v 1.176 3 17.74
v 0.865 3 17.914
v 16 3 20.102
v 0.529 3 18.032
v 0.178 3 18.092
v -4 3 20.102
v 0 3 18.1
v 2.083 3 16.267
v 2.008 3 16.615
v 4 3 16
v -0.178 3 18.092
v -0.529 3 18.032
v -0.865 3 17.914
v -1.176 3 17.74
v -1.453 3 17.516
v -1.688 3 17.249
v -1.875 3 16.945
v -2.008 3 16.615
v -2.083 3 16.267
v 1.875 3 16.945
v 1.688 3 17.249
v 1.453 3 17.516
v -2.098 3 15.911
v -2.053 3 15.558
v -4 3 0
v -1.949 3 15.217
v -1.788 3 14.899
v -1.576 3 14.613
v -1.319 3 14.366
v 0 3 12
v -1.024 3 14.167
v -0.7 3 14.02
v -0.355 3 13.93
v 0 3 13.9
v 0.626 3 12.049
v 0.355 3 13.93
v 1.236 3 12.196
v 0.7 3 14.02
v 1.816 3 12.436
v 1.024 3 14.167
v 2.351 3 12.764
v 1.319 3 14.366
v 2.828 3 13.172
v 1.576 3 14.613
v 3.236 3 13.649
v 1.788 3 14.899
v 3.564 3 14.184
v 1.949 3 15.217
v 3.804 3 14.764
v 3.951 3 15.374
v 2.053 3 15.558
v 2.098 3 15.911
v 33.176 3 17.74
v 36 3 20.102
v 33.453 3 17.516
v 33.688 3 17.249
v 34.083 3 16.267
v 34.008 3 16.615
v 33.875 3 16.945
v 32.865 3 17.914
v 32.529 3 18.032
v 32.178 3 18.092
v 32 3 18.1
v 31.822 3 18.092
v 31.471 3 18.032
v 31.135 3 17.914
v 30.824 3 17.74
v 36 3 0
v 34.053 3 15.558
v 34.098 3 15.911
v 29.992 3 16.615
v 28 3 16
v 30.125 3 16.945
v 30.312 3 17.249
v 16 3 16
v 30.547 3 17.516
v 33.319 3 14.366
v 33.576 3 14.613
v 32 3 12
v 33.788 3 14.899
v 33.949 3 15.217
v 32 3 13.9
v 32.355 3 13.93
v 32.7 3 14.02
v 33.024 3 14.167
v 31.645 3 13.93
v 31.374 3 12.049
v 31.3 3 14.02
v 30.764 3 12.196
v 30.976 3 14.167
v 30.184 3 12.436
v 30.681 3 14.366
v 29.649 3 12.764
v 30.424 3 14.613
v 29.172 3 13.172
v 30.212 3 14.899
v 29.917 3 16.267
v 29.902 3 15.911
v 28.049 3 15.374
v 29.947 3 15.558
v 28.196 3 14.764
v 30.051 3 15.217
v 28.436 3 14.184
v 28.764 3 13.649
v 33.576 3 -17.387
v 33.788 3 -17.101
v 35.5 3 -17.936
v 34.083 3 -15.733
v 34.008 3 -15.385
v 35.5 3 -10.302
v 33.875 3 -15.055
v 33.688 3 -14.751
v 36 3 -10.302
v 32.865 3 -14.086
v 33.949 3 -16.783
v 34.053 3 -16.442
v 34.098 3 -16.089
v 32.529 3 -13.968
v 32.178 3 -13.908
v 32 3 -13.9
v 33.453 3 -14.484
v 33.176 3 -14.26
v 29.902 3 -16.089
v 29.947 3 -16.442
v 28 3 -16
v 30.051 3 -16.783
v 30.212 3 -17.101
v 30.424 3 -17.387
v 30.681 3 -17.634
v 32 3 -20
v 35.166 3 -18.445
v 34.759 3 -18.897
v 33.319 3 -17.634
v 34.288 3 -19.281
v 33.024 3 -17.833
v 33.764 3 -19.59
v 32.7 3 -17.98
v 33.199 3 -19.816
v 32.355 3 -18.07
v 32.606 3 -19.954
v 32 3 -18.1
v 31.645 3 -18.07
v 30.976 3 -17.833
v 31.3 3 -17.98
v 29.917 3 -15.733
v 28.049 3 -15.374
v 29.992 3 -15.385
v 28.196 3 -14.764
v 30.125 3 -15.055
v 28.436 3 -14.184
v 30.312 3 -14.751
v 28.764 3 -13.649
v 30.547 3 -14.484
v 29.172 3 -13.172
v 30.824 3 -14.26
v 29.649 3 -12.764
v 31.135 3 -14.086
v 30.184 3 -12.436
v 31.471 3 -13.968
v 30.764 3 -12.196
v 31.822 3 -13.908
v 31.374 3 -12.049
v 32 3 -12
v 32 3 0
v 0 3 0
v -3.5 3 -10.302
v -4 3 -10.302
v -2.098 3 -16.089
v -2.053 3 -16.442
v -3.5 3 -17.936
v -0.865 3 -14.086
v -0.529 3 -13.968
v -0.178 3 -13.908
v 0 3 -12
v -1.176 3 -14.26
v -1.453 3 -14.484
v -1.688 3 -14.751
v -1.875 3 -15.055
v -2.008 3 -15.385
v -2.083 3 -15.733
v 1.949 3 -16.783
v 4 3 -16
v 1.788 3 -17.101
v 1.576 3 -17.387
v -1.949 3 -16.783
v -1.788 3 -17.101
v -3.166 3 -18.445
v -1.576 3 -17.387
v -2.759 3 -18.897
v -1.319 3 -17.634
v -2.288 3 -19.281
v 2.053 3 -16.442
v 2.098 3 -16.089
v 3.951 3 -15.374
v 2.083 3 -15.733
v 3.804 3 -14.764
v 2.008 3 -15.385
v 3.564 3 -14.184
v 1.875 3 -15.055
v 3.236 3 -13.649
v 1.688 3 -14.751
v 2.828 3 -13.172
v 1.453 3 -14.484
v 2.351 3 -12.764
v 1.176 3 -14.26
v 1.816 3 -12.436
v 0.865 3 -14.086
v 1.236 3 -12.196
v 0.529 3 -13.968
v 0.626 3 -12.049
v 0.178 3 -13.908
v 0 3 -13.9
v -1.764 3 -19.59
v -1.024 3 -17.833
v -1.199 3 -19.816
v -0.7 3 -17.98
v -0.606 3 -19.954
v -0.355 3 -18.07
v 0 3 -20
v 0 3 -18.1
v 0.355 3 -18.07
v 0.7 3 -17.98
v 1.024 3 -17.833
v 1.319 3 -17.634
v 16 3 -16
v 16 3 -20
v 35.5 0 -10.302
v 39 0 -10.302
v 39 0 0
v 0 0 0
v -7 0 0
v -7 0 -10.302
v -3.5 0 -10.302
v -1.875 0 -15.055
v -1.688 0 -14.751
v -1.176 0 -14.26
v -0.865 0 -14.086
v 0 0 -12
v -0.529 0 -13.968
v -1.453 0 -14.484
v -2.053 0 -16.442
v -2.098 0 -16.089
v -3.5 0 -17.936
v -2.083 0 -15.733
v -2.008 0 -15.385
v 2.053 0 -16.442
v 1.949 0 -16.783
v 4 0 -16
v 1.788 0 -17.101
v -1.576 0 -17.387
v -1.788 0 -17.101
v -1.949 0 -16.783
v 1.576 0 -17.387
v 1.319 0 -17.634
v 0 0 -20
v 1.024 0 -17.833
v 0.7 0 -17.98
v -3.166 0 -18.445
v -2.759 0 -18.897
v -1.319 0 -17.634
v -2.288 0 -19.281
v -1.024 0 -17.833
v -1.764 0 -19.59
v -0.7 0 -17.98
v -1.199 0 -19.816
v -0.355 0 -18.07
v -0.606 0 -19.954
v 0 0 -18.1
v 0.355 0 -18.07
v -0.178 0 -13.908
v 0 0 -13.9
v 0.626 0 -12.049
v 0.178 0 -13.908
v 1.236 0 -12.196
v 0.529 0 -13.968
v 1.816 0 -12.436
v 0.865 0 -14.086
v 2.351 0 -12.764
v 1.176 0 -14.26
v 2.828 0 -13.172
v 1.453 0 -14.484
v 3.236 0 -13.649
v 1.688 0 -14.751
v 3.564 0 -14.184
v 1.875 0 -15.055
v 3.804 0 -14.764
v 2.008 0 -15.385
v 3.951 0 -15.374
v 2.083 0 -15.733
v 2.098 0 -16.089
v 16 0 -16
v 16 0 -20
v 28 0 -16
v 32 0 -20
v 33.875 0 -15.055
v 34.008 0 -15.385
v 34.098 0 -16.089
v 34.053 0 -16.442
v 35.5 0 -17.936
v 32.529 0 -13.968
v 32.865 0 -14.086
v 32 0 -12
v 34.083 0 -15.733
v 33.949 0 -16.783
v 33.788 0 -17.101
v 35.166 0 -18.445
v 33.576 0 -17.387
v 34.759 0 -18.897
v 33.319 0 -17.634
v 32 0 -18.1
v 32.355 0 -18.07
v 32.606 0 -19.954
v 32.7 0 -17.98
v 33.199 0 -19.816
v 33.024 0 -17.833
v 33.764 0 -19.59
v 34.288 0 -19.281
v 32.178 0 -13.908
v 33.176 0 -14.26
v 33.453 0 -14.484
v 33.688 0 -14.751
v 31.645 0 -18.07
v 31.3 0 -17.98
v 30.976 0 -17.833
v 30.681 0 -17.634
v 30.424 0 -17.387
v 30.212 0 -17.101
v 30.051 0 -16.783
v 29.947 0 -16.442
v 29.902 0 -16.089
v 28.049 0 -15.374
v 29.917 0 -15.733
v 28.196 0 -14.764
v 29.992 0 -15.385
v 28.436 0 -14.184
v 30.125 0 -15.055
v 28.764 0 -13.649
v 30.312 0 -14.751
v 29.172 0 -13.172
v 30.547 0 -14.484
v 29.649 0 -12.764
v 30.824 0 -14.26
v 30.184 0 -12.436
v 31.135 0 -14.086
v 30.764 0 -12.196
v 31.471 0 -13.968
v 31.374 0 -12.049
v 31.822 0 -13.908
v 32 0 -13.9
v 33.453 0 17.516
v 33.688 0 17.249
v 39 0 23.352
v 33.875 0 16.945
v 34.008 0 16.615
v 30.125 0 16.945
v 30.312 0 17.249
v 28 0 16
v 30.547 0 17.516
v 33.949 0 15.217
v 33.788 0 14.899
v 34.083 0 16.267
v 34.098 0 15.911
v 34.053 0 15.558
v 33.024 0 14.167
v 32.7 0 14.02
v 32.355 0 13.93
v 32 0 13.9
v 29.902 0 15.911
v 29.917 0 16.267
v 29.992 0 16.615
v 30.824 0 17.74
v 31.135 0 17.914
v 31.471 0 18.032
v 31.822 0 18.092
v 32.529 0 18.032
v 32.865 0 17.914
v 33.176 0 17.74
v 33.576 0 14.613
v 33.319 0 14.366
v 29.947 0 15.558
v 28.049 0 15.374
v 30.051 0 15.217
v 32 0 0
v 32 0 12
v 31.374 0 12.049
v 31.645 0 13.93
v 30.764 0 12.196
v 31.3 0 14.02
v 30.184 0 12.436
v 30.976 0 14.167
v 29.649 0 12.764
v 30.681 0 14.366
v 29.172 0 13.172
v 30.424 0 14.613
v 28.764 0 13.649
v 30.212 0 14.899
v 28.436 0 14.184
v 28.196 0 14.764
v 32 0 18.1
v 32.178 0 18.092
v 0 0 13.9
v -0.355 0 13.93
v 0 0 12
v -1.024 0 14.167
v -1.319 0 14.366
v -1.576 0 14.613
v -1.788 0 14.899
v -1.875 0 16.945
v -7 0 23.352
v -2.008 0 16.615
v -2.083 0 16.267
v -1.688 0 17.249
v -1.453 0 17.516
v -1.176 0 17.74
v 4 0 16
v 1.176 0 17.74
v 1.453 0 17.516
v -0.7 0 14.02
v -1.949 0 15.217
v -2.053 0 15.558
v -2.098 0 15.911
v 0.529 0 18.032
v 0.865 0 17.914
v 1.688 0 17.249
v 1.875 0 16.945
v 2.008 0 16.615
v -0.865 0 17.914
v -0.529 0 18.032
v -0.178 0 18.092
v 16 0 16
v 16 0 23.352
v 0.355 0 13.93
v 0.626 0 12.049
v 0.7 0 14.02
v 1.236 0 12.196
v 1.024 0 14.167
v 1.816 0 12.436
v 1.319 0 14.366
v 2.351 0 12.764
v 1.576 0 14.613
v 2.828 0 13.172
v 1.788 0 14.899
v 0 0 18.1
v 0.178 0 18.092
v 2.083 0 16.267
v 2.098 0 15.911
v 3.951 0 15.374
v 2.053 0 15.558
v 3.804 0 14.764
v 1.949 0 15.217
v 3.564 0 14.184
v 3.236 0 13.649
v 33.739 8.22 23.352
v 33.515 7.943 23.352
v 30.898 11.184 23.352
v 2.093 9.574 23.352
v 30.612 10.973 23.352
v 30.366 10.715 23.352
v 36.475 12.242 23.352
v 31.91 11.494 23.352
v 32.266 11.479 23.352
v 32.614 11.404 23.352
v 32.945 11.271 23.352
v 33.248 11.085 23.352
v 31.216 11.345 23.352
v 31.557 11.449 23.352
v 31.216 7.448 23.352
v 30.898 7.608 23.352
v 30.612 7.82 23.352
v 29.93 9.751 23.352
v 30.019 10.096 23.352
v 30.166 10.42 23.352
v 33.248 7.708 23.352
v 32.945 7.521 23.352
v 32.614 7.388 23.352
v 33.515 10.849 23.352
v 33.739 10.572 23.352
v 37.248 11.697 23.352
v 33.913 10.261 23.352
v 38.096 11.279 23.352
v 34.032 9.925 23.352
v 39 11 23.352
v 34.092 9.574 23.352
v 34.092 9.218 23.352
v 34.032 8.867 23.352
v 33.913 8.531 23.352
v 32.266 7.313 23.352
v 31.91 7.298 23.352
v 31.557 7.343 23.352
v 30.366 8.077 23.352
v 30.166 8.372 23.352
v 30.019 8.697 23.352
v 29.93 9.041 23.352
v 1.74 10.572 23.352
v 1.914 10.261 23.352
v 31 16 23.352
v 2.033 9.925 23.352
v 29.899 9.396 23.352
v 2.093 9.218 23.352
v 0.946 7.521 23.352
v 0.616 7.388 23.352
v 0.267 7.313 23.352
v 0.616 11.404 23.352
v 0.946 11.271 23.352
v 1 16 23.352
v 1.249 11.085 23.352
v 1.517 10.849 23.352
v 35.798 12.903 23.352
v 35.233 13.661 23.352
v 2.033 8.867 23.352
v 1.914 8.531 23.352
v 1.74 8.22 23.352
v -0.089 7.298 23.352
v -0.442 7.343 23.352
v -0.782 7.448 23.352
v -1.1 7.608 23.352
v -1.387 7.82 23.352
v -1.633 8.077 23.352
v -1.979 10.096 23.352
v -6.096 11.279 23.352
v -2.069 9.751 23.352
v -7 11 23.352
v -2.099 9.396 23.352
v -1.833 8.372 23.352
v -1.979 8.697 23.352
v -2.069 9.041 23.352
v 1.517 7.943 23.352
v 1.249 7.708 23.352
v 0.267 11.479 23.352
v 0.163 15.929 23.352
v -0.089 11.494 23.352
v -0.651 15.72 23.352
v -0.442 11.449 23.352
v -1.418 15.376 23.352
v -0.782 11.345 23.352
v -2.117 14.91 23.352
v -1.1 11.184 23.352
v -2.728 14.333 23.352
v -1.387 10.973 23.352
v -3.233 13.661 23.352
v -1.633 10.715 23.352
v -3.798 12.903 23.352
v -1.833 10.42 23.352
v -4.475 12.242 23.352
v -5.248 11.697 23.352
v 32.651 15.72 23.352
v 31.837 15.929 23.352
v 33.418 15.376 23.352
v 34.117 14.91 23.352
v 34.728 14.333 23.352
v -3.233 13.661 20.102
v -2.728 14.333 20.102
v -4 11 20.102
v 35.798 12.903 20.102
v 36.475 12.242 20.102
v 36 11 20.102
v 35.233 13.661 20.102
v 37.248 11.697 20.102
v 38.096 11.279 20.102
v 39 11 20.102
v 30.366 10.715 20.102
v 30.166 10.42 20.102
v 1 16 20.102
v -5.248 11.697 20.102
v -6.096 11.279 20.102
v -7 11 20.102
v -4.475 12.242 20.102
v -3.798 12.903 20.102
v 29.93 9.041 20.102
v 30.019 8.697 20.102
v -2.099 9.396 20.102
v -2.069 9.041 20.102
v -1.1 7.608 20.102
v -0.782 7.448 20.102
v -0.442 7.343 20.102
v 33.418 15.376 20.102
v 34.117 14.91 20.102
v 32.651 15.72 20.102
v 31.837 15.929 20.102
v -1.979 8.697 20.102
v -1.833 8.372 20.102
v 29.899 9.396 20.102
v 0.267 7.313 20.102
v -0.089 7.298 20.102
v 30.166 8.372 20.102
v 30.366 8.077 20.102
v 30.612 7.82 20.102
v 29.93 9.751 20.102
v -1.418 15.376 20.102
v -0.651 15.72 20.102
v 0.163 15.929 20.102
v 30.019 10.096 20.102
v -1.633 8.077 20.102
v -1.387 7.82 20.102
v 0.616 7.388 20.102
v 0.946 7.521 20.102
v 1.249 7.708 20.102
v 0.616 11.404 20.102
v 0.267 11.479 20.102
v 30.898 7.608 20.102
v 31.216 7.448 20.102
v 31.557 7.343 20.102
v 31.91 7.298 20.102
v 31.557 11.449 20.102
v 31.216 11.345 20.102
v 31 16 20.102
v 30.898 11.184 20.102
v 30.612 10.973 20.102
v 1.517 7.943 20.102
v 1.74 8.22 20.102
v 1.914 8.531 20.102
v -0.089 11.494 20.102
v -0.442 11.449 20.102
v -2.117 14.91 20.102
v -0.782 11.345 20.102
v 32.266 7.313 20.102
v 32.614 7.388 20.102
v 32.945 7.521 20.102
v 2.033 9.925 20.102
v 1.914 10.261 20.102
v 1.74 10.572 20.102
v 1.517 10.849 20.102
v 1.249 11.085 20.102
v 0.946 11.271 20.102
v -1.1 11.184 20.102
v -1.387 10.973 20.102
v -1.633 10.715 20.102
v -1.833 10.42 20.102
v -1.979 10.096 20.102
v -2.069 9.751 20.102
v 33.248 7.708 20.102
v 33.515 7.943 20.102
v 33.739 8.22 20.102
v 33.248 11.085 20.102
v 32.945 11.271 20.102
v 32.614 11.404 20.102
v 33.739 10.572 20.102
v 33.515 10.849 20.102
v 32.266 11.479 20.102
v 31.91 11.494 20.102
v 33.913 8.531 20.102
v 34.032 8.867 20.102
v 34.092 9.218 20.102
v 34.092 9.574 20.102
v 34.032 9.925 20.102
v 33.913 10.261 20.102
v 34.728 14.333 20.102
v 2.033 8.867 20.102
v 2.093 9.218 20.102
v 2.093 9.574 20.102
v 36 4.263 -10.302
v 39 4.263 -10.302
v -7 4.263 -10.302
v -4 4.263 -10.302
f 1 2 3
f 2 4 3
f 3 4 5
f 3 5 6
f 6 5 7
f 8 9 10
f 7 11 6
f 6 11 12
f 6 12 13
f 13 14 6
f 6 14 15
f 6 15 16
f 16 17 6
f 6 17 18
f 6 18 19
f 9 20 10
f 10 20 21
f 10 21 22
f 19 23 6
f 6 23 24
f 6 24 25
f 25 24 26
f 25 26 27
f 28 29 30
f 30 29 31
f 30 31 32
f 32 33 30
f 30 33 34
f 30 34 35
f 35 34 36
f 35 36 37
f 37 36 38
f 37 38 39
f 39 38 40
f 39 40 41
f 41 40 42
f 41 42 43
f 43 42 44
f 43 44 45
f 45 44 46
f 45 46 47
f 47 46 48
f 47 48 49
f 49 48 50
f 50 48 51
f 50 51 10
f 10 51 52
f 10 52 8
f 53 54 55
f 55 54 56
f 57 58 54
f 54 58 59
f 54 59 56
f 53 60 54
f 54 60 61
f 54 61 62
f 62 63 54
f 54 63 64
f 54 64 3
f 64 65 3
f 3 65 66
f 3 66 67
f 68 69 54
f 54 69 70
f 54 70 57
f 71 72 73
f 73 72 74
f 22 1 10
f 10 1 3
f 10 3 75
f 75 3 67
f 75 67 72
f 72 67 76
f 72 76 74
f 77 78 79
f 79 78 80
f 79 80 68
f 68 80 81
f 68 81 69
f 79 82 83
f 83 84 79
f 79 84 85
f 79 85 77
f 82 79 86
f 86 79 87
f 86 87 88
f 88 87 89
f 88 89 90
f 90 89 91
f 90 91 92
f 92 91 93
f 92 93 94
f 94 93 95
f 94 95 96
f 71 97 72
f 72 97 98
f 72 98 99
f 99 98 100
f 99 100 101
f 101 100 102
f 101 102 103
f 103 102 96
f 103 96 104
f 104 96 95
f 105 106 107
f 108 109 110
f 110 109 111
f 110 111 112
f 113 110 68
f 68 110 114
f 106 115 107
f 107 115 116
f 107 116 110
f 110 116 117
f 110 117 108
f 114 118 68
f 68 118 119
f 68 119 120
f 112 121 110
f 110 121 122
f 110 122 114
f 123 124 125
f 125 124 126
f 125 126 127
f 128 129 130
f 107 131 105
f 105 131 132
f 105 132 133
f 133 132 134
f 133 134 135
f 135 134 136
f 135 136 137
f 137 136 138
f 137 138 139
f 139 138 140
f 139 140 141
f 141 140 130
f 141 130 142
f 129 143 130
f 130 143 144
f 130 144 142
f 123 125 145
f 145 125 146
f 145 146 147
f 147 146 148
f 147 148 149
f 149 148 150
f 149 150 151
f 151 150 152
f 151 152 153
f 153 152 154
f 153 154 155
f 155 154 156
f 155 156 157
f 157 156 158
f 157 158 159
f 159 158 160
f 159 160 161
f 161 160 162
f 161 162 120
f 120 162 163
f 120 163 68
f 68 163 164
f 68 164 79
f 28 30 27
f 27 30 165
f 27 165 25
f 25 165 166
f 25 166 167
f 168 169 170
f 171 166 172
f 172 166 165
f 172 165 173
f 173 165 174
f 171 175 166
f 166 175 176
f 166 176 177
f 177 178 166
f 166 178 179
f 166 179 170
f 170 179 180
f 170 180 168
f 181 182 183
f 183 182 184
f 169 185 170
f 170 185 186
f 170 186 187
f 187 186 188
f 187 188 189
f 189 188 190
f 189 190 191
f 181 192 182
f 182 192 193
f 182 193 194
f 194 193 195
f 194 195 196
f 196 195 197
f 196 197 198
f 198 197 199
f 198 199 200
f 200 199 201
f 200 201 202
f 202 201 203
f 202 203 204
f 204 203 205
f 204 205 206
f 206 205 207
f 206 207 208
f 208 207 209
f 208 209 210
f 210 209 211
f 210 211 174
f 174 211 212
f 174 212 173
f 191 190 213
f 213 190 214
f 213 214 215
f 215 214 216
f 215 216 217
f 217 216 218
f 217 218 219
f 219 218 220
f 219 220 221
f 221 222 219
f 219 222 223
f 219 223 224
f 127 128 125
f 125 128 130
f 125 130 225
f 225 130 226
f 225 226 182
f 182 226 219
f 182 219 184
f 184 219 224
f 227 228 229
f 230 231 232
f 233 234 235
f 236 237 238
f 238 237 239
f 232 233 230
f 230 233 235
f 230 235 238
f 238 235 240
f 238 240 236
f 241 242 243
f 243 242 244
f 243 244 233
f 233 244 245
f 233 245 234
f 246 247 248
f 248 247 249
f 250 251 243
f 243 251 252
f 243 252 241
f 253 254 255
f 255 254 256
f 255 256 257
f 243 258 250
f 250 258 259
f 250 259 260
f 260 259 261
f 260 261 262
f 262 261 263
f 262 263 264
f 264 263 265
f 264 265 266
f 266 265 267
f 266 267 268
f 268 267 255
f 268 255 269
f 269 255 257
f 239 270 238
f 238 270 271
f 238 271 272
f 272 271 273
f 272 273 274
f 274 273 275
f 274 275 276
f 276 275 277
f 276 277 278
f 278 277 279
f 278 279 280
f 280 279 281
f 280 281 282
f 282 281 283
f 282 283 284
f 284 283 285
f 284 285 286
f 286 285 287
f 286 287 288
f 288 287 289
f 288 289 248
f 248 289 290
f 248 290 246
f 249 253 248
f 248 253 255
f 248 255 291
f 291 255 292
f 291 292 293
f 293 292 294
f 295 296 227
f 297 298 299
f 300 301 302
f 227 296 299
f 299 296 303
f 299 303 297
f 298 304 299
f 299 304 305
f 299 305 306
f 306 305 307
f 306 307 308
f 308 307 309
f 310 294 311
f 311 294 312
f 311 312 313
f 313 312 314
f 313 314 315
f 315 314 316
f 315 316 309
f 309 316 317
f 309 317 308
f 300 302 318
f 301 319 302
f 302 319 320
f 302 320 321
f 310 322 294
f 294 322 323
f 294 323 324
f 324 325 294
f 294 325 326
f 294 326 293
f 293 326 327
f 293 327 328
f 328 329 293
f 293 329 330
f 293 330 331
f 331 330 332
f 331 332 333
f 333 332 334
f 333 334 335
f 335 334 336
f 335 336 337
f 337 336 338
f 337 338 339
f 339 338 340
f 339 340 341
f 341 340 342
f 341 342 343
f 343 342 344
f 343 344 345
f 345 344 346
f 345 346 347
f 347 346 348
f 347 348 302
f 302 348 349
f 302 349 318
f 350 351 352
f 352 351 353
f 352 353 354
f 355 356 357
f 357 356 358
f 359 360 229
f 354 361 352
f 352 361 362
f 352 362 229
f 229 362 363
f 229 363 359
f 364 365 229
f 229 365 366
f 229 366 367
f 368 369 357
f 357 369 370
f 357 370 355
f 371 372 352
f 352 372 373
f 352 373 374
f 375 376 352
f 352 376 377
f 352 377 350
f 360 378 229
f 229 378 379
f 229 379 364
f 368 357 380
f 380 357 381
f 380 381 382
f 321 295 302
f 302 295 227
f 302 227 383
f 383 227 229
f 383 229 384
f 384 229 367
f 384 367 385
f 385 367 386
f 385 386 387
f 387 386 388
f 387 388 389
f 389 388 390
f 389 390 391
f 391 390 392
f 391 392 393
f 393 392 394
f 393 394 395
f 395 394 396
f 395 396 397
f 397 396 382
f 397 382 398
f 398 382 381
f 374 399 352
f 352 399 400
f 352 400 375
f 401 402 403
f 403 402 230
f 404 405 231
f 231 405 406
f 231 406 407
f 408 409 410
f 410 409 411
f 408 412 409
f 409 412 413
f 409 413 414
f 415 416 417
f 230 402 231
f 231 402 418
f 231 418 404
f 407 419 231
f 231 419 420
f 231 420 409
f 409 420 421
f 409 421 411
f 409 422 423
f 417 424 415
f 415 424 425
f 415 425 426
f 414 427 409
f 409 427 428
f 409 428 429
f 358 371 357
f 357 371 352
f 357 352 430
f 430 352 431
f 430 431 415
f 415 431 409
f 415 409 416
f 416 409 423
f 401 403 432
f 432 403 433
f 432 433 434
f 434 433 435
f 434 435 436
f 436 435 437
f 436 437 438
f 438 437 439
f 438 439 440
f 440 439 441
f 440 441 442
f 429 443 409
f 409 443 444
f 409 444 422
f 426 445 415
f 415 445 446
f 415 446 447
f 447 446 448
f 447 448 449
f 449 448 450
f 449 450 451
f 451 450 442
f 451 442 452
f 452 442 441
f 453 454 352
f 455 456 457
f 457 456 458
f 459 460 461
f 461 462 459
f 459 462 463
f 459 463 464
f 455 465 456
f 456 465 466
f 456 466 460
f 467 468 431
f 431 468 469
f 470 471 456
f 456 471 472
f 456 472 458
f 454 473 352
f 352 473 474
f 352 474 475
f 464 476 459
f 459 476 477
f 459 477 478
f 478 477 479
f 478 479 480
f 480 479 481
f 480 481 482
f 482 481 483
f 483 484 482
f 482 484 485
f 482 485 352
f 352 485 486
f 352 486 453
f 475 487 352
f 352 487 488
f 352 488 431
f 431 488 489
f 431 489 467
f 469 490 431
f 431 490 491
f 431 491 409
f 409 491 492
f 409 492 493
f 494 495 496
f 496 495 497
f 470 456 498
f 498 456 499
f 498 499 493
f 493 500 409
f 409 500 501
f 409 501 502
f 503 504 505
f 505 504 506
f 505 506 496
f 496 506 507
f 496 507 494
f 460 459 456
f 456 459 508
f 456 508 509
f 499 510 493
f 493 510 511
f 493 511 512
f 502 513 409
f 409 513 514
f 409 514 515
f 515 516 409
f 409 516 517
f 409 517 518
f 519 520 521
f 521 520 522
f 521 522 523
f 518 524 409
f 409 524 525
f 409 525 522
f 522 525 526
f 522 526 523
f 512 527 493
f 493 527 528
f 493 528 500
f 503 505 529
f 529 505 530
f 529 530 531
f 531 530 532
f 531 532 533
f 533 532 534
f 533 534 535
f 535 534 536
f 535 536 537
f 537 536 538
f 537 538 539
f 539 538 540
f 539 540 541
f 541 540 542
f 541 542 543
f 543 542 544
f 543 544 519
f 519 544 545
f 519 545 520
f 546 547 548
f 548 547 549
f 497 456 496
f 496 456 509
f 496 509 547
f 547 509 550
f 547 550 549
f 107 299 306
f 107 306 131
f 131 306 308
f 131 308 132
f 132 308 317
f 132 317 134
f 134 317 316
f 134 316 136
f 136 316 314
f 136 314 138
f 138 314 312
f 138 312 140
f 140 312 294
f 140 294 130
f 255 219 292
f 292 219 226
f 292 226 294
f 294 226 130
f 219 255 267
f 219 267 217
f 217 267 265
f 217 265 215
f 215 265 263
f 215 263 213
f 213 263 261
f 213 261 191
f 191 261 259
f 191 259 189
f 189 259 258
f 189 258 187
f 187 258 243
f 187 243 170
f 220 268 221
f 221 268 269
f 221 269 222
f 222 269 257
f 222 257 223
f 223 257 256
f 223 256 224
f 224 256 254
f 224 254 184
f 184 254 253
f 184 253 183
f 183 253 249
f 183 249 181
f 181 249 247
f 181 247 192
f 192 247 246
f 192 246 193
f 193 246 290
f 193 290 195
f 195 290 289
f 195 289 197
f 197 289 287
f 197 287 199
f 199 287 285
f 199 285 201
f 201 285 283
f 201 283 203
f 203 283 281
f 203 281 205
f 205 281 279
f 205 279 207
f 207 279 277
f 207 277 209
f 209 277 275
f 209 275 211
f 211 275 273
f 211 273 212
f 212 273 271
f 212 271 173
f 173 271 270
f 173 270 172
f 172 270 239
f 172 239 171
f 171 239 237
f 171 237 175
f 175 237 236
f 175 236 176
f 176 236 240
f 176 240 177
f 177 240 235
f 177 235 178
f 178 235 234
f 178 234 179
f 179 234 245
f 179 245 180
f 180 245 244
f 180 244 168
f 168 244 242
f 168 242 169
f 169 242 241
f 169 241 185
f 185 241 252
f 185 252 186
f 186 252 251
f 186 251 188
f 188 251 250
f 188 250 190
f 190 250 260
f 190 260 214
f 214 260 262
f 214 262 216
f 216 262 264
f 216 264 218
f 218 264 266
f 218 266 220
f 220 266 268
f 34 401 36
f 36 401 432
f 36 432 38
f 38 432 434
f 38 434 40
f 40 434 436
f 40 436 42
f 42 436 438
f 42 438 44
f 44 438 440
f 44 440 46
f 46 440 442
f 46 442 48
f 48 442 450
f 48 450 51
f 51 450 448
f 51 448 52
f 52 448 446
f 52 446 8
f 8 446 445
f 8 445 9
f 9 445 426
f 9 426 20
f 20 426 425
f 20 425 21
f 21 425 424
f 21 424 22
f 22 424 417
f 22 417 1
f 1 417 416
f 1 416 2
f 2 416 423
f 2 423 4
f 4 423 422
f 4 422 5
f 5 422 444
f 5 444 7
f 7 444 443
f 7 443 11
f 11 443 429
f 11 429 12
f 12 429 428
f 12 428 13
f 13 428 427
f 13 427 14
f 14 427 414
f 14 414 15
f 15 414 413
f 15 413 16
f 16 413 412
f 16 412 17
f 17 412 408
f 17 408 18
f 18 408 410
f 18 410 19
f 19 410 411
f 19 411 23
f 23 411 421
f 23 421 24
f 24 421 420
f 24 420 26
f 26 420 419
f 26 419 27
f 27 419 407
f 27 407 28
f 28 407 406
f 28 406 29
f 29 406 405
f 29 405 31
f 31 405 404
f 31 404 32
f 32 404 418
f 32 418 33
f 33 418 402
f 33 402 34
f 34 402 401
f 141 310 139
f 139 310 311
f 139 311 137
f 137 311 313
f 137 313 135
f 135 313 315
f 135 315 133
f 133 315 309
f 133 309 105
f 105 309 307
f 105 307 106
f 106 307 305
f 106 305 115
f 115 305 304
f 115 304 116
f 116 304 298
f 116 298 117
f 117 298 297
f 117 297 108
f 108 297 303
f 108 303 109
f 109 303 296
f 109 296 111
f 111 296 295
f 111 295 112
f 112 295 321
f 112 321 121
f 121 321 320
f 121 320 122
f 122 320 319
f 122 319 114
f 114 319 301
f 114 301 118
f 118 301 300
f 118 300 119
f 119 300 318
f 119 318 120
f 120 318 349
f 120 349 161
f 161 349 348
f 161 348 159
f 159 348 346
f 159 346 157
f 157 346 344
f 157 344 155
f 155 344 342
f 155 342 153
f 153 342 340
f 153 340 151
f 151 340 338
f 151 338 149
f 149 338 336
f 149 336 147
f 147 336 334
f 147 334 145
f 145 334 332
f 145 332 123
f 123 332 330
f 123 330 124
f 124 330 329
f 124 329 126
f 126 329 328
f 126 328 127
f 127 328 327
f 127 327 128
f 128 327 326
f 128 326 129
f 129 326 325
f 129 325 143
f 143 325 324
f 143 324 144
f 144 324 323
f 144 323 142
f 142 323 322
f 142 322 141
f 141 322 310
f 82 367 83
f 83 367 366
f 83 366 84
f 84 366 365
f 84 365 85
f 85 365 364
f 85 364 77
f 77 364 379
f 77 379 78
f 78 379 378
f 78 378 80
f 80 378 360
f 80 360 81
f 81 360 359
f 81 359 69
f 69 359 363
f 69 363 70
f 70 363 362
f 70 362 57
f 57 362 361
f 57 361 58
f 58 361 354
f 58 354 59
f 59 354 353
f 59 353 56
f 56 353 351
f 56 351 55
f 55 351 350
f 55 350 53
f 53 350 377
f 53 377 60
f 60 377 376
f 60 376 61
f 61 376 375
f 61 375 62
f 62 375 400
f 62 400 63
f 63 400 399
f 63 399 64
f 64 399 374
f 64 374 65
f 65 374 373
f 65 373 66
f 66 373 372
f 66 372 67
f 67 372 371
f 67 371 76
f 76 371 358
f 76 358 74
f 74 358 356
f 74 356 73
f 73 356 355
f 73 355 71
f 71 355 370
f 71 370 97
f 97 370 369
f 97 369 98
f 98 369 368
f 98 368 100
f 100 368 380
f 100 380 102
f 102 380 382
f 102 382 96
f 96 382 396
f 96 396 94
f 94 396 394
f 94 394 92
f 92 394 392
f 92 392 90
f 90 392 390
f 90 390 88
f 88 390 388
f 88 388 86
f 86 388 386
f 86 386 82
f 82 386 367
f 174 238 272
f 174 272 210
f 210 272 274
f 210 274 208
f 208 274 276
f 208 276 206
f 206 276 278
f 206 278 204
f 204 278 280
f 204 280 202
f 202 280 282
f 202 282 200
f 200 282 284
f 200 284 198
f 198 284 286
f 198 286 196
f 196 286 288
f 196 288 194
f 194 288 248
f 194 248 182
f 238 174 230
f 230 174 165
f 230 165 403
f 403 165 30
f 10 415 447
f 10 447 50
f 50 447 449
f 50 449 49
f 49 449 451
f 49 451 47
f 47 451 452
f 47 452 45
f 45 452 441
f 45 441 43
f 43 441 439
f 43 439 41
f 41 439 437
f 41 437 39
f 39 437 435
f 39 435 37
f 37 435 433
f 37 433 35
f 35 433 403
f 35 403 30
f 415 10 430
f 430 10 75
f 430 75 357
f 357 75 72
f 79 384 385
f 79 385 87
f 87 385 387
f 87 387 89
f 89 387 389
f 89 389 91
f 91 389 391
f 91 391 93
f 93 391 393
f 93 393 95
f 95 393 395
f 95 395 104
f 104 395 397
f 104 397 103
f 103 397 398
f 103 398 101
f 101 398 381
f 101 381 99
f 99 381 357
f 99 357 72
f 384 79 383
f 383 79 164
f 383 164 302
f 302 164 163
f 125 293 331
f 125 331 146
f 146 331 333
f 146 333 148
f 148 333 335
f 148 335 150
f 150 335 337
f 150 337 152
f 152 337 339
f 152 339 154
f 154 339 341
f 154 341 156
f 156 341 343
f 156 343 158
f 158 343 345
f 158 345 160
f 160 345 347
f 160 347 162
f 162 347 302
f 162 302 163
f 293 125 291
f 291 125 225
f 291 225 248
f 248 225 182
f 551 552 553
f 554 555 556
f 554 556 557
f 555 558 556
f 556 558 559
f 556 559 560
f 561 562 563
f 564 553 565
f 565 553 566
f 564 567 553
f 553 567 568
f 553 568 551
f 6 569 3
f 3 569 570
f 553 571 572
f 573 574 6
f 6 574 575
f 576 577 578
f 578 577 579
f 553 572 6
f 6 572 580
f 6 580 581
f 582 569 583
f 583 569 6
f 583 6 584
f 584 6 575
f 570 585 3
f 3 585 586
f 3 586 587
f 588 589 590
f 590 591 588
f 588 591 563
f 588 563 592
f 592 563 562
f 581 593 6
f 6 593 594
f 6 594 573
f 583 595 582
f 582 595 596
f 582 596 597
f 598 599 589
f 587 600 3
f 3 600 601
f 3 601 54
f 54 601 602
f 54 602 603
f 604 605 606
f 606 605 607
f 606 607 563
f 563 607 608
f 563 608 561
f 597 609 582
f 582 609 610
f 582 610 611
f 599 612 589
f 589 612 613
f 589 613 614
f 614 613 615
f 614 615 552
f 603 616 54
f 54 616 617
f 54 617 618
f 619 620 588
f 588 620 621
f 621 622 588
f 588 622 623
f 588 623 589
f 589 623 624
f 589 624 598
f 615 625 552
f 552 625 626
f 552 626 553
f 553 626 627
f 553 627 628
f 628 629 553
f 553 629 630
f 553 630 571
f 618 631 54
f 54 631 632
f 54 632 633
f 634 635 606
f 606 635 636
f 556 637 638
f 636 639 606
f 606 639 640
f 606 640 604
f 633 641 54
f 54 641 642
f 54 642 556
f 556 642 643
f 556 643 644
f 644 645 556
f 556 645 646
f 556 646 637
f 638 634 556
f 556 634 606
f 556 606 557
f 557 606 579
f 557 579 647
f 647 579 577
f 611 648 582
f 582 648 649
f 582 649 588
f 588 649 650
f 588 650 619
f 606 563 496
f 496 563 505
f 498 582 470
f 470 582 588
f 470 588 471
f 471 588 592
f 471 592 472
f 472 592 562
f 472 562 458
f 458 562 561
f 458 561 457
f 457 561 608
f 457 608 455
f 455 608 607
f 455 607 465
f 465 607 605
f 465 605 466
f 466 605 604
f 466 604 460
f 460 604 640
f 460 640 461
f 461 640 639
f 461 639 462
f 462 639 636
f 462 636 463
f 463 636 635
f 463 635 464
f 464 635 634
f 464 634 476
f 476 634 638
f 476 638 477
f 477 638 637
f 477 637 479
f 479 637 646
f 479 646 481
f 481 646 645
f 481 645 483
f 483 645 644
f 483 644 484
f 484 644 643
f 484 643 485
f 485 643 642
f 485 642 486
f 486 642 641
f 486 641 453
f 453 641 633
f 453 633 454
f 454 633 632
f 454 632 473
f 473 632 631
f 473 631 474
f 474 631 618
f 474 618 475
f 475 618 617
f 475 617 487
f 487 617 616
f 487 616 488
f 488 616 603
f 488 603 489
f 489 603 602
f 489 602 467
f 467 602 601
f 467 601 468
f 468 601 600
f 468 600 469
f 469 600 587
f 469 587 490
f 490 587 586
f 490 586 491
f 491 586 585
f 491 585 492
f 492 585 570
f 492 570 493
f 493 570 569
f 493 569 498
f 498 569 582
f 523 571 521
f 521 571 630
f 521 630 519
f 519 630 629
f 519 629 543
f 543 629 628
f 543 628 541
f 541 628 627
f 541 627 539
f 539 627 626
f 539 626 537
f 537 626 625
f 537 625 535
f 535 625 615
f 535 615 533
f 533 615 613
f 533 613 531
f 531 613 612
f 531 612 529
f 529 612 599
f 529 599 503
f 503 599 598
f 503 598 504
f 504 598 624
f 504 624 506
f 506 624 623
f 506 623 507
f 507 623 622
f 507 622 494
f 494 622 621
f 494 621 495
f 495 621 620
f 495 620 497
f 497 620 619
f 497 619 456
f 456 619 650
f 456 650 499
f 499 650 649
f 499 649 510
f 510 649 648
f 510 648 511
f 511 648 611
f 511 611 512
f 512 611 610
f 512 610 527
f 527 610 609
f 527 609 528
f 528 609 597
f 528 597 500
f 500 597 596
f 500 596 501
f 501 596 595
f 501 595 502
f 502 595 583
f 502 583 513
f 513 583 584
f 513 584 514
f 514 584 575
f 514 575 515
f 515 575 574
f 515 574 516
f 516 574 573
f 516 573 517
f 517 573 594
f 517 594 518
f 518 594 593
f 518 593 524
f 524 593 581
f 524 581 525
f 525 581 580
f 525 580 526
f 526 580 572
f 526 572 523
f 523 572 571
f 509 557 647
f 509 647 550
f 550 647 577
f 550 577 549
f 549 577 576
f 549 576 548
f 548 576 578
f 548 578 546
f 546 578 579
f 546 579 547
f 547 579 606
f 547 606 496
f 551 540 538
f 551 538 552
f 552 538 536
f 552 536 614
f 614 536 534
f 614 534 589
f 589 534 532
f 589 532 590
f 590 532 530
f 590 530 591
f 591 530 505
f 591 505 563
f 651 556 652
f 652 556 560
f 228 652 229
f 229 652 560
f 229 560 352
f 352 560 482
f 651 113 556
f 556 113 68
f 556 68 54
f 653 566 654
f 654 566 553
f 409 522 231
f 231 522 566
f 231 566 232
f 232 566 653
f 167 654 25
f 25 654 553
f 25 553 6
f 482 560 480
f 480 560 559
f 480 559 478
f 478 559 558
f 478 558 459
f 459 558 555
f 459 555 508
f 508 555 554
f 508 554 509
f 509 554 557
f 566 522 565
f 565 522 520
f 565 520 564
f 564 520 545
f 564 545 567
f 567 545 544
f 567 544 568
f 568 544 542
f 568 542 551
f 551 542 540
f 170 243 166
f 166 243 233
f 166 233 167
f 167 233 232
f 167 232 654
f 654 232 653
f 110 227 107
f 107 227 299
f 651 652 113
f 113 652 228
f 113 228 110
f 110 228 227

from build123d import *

# Parameters (mm, degrees)
SKETCH1_R           = 2.1
BOSS_EXTRUDE1_DEPTH = 3
SKETCH2_W           = 40
SKETCH2_H           = 3.25
BOSS_EXTRUDE2_DEPTH = 13
SKETCH3_R           = 2.1
CUT_EXTRUDE1_DEPTH  = 15
FILLET1_R           = 5
BOSS_EXTRUDE3_DEPTH = 3
BOSS_EXTRUDE4_DEPTH = 3
FILLET4_R           = 6
SKETCH7_W           = 3.5
SKETCH7_H           = 9.863589554
CUT_EXTRUDE2_DEPTH  = 10
SKETCH8_W           = 3
SKETCH8_H           = 1.69787118
CUT_EXTRUDE3_DEPTH  = 10


with BuildPart() as part:
    # Sketch1 → Boss-Extrude1 (new body)
    with BuildSketch(Plane(origin=(0, 0, 0), x_dir=(1, 0, 0), z_dir=(0, 1, 0))):
        with BuildLine():
            Line((0, 20), (32, 20))
            ThreePointArc((32, 20), (34.828427125, 18.828427125), (36, 16))
            Line((36, 16), (36, -16))
            Line((36, -16), (36, -23.351584796))
            Line((36, -23.351584796), (-4, -23.351584796))
            Line((-4, -23.351584796), (-4, -16))
            Line((-4, -16), (-4, 16))
            ThreePointArc((-4, 16), (-2.828427125, 18.828427125), (0, 20))
        make_face()
        with Locations(Location((0, 16, 0), (0, 0, 270))):
            Circle(SKETCH1_R, mode=Mode.SUBTRACT)
        with Locations(Location((0, -16, 0), (0, 0, 270))):
            Circle(SKETCH1_R, mode=Mode.SUBTRACT)
        with Locations(Location((32, 16, 0), (0, 0, 270))):
            Circle(SKETCH1_R, mode=Mode.SUBTRACT)
        with Locations(Location((32, -16, 0), (0, 0, 270))):
            Circle(SKETCH1_R, mode=Mode.SUBTRACT)
        with BuildLine():
            Line((0, 12), (0, -12))
            ThreePointArc((0, -12), (2.828427125, -13.171572875), (4, -16))
            Line((4, -16), (28, -16))
            ThreePointArc((28, -16), (29.171572875, -13.171572875), (32, -12))
            Line((32, -12), (32, 12))
            ThreePointArc((32, 12), (29.171572875, 13.171572875), (28, 16))
            Line((28, 16), (4, 16))
            ThreePointArc((4, 16), (2.828427125, 13.171572875), (0, 12))
        make_face(mode=Mode.SUBTRACT)
    extrude(amount=BOSS_EXTRUDE1_DEPTH)

    # Sketch2 → Boss-Extrude2 (add)
    with BuildSketch(Plane(origin=(0, 3, 0), x_dir=(1, 0, 0), z_dir=(0, 1, 0))):
        with Locations((16, -21.726584796)):
            Rectangle(SKETCH2_W, SKETCH2_H)
    extrude(amount=BOSS_EXTRUDE2_DEPTH)

    # Sketch3 → Cut-Extrude1 (cut)
    with BuildSketch(Plane(origin=(0, 0, 20.101584796), x_dir=(-1, 0, 0), z_dir=(0, 0, -1))):
        with Locations((-0.000616802, 9.396216068)):
            Circle(SKETCH3_R)
        with Locations((-31.999383198, 9.396216068)):
            Circle(SKETCH3_R)
    extrude(amount=-CUT_EXTRUDE1_DEPTH, mode=Mode.SUBTRACT)

    # Fillet1
    fillet1_edges = [part.edges().sort_by_distance(p)[0] for p in [
        (-4, 16, 21.726584796),
        (36, 16, 21.726584796),
    ]]
    fillet(fillet1_edges, radius=FILLET1_R)

    # Sketch4 → Boss-Extrude3 (add)
    with BuildSketch(Plane(origin=(36, 0, 0), x_dir=(0, 0, -1), z_dir=(1, 0, 0))):
        Polygon((-20.101584796, 11), (12, 3.88638768), (12, 0), (-23.351584796, 0), (-23.351584796, 11), align=None)
    extrude(amount=BOSS_EXTRUDE3_DEPTH)

    # Sketch5 → Boss-Extrude4 (add)
    with BuildSketch(Plane.ZY.offset(4)):
        Polygon((20.101584796, 11), (23.351584796, 11), (23.351584796, 0), (-12, 0), (-12, 3.88638768), align=None)
    extrude(amount=BOSS_EXTRUDE4_DEPTH)

    # Fillet4
    # the kernel refuses this fillet: 6 mm, written as the material it adds along each edge
    with BuildSketch(Plane(origin=(36, 11, 23.351584796), x_dir=(1, 0, 0), z_dir=(0, 0, -1))) as fillet4_piece_1:
        with BuildLine():
            CenterArc((4.3125, -5.854685623), FILLET4_R, 102.635625093, 45.207166298)
            ThreePointArc((-0.767045455, -2.661220738), (-0.195586783, -1.384779274), (0, 0))
            Line((0, 0), (3, 0))
        make_face()
    extrude(amount=3.25)
    with BuildSketch(Plane(origin=(-4, 11, 20.101584796), x_dir=(0.2769558547034986, 0.9608826434822593, 0), z_dir=(0, 0, 1))) as fillet4_piece_2:
        with BuildLine():
            CenterArc((4.431293675, 5.765295861), FILLET4_R, 208.714229398, 45.207166298)
            Line((-0.830867564, 2.88264793), (0, 0))
            ThreePointArc((0, 0), (1.384779274, 0.195586783), (2.769558547, 0))
        make_face()
    extrude(amount=3.25)

    # Sketch7 → Cut-Extrude2 (cut)
    with BuildSketch(Plane(origin=(0, 3, 0), x_dir=(1, 0, 0), z_dir=(0, 1, 0))):
        with Locations((-5.25, 15.233923597)):
            Rectangle(SKETCH7_W, SKETCH7_H)
        with Locations((37.25, 15.233923597)):
            Rectangle(SKETCH7_W, SKETCH7_H)
    extrude(amount=-CUT_EXTRUDE2_DEPTH, mode=Mode.SUBTRACT)

    # Sketch8 → Cut-Extrude3 (cut)
    with BuildSketch(Plane(origin=(0, 3, 0), x_dir=(-1, 0, 0), z_dir=(0, -1, 0))):
        with Locations((5.5, 11.15106441)):
            Rectangle(SKETCH8_W, SKETCH8_H)
        with Locations((-37.5, 11.15106441)):
            Rectangle(SKETCH8_W, SKETCH8_H)
    extrude(amount=-CUT_EXTRUDE3_DEPTH, mode=Mode.SUBTRACT)


solid = part.part
